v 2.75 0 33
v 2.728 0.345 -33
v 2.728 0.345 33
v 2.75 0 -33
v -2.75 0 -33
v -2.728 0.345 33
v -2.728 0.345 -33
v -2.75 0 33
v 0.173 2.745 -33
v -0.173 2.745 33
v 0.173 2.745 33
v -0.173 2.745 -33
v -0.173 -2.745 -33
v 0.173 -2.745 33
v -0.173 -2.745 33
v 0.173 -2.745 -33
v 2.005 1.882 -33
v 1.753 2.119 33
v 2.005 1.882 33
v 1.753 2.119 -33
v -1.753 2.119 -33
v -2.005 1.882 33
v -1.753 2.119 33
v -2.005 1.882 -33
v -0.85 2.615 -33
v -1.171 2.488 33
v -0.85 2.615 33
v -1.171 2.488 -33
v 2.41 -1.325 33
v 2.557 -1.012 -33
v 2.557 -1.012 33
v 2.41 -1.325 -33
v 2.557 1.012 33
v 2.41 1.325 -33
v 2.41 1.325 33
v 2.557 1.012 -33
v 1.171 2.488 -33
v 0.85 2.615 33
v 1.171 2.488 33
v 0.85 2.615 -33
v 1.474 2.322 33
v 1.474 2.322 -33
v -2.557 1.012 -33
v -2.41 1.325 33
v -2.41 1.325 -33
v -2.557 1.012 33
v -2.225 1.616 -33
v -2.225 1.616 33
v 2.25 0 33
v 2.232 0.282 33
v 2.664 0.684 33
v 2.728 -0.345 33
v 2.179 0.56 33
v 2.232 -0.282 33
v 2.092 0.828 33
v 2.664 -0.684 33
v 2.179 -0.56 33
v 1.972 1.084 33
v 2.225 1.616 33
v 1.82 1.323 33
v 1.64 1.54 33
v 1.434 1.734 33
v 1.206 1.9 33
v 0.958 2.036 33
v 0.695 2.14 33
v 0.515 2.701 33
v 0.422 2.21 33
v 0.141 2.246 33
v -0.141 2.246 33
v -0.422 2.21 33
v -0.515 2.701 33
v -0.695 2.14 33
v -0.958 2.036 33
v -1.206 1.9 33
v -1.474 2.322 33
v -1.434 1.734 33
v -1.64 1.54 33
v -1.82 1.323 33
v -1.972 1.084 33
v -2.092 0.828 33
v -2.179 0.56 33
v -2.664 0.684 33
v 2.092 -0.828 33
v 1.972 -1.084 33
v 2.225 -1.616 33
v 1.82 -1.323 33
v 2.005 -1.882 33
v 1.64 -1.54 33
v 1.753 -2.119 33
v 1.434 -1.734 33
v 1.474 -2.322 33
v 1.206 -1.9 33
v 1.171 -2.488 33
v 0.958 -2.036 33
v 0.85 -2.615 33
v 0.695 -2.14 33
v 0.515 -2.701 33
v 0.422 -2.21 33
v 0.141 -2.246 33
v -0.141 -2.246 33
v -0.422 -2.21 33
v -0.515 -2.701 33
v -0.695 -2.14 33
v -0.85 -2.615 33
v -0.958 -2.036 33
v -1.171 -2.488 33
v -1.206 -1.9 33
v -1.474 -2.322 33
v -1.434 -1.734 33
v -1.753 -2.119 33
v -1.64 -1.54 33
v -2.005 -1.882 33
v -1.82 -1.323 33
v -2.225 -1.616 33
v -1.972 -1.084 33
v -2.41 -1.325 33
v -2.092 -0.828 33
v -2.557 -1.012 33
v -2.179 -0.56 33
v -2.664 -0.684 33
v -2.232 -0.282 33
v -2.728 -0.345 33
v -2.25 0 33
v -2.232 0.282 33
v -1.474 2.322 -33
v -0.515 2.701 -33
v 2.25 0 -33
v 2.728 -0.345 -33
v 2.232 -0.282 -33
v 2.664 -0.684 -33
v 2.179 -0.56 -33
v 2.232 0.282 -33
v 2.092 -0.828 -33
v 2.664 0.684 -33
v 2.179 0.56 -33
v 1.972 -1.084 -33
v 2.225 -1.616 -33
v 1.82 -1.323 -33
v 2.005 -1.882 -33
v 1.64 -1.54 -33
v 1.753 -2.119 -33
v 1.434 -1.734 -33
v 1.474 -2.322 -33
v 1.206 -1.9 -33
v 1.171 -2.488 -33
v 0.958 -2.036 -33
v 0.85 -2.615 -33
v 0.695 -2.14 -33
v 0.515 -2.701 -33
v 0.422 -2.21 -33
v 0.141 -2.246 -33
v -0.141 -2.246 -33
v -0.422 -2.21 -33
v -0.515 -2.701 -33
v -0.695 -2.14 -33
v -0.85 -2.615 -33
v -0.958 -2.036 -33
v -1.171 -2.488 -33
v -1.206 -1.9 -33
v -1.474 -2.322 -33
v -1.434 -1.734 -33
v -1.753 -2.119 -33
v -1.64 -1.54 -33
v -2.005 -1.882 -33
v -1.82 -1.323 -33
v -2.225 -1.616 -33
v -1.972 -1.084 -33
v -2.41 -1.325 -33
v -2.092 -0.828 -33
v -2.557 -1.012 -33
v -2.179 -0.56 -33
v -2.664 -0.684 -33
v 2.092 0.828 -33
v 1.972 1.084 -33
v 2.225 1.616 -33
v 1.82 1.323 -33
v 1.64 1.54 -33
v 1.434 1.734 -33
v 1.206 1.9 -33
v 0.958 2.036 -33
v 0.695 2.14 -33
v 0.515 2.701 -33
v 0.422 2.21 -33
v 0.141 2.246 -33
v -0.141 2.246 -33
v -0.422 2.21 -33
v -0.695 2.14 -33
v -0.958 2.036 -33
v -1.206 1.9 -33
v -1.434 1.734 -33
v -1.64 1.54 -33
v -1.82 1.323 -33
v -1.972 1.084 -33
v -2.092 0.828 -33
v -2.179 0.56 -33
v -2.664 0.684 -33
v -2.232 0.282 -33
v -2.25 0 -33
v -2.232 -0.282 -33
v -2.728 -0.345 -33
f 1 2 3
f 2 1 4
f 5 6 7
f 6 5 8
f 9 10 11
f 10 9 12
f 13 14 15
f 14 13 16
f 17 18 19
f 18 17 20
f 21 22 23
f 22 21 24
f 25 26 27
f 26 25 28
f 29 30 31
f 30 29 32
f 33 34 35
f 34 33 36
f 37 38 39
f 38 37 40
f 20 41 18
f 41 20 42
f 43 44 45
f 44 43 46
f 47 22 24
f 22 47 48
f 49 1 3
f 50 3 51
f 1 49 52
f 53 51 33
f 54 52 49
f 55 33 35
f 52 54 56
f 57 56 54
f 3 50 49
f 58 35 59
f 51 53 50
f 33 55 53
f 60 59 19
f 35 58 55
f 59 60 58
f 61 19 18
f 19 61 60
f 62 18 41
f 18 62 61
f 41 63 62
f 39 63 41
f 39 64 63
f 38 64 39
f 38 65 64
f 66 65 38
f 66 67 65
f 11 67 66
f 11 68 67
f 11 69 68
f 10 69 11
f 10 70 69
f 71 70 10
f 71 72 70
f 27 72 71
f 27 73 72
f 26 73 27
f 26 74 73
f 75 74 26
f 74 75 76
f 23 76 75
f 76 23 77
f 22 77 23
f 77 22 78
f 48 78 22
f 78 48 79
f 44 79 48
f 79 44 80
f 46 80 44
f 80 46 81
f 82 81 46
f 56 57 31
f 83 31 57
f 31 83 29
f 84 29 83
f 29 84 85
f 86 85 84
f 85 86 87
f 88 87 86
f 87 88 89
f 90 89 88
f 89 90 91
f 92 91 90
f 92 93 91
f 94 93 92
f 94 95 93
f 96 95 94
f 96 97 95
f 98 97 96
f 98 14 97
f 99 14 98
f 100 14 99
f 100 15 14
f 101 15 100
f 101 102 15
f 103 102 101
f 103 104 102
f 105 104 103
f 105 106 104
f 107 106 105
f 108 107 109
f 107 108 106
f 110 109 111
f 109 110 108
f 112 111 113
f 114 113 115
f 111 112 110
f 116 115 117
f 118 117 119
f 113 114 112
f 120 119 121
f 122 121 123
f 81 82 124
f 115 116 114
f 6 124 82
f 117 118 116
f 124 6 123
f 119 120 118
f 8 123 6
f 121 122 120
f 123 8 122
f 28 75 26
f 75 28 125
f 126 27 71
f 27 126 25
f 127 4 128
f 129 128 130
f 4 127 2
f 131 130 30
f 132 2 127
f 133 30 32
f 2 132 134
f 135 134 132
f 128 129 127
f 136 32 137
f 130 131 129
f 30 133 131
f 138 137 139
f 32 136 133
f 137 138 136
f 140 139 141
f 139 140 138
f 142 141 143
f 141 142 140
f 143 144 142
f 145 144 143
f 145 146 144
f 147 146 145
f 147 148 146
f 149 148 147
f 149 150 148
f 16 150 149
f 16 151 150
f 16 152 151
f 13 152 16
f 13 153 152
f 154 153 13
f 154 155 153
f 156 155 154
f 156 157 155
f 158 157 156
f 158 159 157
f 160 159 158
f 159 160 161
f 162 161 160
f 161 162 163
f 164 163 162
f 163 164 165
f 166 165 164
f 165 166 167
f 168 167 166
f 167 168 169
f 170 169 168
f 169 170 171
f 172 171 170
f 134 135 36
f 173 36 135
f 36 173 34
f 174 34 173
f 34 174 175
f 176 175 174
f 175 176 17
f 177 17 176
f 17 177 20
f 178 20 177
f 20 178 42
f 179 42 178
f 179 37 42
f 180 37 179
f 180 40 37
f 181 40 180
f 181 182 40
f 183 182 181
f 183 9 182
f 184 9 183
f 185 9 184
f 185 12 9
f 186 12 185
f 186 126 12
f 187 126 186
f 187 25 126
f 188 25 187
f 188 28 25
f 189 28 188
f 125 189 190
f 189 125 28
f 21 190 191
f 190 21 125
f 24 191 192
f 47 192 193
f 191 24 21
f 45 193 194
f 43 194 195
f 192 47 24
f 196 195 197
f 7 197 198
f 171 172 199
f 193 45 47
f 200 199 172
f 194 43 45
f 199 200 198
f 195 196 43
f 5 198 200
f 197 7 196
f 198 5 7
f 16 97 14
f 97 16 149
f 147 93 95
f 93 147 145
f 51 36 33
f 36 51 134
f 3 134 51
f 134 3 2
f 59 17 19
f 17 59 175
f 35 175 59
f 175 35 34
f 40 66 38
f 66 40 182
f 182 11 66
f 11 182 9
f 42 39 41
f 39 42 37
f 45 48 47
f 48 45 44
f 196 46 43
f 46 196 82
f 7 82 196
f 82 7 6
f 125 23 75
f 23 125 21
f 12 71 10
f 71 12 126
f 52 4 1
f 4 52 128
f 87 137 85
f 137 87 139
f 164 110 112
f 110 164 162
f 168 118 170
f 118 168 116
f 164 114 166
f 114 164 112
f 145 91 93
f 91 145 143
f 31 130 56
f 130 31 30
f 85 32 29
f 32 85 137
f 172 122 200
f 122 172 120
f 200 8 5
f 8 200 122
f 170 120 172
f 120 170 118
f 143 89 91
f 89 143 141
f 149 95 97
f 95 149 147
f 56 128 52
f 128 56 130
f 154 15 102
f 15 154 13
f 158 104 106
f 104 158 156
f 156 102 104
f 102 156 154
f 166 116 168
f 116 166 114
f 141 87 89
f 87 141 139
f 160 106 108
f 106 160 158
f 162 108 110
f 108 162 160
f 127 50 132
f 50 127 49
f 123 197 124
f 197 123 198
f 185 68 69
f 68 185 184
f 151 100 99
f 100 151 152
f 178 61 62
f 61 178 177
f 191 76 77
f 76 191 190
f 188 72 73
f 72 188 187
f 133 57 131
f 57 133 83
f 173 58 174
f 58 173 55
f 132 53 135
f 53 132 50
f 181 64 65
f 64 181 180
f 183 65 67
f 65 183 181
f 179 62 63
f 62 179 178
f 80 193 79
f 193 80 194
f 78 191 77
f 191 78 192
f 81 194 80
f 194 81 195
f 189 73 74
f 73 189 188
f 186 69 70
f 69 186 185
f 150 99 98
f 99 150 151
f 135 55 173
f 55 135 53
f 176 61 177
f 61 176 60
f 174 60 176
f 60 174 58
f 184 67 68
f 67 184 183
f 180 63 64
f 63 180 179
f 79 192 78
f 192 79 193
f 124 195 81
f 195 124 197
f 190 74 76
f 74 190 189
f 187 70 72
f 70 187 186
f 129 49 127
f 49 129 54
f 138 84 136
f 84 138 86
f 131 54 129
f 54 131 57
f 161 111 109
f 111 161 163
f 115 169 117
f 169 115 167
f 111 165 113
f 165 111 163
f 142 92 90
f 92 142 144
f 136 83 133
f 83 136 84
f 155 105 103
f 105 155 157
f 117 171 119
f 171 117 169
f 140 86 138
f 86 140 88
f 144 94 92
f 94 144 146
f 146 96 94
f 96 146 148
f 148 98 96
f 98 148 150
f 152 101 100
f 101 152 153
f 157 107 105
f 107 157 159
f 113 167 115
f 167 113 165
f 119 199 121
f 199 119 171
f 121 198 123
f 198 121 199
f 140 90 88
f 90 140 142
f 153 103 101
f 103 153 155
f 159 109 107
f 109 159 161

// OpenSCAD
$fn = 50;


difference() {
	union() {
		translate(v = [0, 0, -33.0000000000]) {
			cylinder(h = 66, r = 2.7500000000);
		}
	}
	union() {
		translate(v = [0, 0, -100.0000000000]) {
			cylinder(h = 200, r = 2.2500000000);
		}
	}
}
